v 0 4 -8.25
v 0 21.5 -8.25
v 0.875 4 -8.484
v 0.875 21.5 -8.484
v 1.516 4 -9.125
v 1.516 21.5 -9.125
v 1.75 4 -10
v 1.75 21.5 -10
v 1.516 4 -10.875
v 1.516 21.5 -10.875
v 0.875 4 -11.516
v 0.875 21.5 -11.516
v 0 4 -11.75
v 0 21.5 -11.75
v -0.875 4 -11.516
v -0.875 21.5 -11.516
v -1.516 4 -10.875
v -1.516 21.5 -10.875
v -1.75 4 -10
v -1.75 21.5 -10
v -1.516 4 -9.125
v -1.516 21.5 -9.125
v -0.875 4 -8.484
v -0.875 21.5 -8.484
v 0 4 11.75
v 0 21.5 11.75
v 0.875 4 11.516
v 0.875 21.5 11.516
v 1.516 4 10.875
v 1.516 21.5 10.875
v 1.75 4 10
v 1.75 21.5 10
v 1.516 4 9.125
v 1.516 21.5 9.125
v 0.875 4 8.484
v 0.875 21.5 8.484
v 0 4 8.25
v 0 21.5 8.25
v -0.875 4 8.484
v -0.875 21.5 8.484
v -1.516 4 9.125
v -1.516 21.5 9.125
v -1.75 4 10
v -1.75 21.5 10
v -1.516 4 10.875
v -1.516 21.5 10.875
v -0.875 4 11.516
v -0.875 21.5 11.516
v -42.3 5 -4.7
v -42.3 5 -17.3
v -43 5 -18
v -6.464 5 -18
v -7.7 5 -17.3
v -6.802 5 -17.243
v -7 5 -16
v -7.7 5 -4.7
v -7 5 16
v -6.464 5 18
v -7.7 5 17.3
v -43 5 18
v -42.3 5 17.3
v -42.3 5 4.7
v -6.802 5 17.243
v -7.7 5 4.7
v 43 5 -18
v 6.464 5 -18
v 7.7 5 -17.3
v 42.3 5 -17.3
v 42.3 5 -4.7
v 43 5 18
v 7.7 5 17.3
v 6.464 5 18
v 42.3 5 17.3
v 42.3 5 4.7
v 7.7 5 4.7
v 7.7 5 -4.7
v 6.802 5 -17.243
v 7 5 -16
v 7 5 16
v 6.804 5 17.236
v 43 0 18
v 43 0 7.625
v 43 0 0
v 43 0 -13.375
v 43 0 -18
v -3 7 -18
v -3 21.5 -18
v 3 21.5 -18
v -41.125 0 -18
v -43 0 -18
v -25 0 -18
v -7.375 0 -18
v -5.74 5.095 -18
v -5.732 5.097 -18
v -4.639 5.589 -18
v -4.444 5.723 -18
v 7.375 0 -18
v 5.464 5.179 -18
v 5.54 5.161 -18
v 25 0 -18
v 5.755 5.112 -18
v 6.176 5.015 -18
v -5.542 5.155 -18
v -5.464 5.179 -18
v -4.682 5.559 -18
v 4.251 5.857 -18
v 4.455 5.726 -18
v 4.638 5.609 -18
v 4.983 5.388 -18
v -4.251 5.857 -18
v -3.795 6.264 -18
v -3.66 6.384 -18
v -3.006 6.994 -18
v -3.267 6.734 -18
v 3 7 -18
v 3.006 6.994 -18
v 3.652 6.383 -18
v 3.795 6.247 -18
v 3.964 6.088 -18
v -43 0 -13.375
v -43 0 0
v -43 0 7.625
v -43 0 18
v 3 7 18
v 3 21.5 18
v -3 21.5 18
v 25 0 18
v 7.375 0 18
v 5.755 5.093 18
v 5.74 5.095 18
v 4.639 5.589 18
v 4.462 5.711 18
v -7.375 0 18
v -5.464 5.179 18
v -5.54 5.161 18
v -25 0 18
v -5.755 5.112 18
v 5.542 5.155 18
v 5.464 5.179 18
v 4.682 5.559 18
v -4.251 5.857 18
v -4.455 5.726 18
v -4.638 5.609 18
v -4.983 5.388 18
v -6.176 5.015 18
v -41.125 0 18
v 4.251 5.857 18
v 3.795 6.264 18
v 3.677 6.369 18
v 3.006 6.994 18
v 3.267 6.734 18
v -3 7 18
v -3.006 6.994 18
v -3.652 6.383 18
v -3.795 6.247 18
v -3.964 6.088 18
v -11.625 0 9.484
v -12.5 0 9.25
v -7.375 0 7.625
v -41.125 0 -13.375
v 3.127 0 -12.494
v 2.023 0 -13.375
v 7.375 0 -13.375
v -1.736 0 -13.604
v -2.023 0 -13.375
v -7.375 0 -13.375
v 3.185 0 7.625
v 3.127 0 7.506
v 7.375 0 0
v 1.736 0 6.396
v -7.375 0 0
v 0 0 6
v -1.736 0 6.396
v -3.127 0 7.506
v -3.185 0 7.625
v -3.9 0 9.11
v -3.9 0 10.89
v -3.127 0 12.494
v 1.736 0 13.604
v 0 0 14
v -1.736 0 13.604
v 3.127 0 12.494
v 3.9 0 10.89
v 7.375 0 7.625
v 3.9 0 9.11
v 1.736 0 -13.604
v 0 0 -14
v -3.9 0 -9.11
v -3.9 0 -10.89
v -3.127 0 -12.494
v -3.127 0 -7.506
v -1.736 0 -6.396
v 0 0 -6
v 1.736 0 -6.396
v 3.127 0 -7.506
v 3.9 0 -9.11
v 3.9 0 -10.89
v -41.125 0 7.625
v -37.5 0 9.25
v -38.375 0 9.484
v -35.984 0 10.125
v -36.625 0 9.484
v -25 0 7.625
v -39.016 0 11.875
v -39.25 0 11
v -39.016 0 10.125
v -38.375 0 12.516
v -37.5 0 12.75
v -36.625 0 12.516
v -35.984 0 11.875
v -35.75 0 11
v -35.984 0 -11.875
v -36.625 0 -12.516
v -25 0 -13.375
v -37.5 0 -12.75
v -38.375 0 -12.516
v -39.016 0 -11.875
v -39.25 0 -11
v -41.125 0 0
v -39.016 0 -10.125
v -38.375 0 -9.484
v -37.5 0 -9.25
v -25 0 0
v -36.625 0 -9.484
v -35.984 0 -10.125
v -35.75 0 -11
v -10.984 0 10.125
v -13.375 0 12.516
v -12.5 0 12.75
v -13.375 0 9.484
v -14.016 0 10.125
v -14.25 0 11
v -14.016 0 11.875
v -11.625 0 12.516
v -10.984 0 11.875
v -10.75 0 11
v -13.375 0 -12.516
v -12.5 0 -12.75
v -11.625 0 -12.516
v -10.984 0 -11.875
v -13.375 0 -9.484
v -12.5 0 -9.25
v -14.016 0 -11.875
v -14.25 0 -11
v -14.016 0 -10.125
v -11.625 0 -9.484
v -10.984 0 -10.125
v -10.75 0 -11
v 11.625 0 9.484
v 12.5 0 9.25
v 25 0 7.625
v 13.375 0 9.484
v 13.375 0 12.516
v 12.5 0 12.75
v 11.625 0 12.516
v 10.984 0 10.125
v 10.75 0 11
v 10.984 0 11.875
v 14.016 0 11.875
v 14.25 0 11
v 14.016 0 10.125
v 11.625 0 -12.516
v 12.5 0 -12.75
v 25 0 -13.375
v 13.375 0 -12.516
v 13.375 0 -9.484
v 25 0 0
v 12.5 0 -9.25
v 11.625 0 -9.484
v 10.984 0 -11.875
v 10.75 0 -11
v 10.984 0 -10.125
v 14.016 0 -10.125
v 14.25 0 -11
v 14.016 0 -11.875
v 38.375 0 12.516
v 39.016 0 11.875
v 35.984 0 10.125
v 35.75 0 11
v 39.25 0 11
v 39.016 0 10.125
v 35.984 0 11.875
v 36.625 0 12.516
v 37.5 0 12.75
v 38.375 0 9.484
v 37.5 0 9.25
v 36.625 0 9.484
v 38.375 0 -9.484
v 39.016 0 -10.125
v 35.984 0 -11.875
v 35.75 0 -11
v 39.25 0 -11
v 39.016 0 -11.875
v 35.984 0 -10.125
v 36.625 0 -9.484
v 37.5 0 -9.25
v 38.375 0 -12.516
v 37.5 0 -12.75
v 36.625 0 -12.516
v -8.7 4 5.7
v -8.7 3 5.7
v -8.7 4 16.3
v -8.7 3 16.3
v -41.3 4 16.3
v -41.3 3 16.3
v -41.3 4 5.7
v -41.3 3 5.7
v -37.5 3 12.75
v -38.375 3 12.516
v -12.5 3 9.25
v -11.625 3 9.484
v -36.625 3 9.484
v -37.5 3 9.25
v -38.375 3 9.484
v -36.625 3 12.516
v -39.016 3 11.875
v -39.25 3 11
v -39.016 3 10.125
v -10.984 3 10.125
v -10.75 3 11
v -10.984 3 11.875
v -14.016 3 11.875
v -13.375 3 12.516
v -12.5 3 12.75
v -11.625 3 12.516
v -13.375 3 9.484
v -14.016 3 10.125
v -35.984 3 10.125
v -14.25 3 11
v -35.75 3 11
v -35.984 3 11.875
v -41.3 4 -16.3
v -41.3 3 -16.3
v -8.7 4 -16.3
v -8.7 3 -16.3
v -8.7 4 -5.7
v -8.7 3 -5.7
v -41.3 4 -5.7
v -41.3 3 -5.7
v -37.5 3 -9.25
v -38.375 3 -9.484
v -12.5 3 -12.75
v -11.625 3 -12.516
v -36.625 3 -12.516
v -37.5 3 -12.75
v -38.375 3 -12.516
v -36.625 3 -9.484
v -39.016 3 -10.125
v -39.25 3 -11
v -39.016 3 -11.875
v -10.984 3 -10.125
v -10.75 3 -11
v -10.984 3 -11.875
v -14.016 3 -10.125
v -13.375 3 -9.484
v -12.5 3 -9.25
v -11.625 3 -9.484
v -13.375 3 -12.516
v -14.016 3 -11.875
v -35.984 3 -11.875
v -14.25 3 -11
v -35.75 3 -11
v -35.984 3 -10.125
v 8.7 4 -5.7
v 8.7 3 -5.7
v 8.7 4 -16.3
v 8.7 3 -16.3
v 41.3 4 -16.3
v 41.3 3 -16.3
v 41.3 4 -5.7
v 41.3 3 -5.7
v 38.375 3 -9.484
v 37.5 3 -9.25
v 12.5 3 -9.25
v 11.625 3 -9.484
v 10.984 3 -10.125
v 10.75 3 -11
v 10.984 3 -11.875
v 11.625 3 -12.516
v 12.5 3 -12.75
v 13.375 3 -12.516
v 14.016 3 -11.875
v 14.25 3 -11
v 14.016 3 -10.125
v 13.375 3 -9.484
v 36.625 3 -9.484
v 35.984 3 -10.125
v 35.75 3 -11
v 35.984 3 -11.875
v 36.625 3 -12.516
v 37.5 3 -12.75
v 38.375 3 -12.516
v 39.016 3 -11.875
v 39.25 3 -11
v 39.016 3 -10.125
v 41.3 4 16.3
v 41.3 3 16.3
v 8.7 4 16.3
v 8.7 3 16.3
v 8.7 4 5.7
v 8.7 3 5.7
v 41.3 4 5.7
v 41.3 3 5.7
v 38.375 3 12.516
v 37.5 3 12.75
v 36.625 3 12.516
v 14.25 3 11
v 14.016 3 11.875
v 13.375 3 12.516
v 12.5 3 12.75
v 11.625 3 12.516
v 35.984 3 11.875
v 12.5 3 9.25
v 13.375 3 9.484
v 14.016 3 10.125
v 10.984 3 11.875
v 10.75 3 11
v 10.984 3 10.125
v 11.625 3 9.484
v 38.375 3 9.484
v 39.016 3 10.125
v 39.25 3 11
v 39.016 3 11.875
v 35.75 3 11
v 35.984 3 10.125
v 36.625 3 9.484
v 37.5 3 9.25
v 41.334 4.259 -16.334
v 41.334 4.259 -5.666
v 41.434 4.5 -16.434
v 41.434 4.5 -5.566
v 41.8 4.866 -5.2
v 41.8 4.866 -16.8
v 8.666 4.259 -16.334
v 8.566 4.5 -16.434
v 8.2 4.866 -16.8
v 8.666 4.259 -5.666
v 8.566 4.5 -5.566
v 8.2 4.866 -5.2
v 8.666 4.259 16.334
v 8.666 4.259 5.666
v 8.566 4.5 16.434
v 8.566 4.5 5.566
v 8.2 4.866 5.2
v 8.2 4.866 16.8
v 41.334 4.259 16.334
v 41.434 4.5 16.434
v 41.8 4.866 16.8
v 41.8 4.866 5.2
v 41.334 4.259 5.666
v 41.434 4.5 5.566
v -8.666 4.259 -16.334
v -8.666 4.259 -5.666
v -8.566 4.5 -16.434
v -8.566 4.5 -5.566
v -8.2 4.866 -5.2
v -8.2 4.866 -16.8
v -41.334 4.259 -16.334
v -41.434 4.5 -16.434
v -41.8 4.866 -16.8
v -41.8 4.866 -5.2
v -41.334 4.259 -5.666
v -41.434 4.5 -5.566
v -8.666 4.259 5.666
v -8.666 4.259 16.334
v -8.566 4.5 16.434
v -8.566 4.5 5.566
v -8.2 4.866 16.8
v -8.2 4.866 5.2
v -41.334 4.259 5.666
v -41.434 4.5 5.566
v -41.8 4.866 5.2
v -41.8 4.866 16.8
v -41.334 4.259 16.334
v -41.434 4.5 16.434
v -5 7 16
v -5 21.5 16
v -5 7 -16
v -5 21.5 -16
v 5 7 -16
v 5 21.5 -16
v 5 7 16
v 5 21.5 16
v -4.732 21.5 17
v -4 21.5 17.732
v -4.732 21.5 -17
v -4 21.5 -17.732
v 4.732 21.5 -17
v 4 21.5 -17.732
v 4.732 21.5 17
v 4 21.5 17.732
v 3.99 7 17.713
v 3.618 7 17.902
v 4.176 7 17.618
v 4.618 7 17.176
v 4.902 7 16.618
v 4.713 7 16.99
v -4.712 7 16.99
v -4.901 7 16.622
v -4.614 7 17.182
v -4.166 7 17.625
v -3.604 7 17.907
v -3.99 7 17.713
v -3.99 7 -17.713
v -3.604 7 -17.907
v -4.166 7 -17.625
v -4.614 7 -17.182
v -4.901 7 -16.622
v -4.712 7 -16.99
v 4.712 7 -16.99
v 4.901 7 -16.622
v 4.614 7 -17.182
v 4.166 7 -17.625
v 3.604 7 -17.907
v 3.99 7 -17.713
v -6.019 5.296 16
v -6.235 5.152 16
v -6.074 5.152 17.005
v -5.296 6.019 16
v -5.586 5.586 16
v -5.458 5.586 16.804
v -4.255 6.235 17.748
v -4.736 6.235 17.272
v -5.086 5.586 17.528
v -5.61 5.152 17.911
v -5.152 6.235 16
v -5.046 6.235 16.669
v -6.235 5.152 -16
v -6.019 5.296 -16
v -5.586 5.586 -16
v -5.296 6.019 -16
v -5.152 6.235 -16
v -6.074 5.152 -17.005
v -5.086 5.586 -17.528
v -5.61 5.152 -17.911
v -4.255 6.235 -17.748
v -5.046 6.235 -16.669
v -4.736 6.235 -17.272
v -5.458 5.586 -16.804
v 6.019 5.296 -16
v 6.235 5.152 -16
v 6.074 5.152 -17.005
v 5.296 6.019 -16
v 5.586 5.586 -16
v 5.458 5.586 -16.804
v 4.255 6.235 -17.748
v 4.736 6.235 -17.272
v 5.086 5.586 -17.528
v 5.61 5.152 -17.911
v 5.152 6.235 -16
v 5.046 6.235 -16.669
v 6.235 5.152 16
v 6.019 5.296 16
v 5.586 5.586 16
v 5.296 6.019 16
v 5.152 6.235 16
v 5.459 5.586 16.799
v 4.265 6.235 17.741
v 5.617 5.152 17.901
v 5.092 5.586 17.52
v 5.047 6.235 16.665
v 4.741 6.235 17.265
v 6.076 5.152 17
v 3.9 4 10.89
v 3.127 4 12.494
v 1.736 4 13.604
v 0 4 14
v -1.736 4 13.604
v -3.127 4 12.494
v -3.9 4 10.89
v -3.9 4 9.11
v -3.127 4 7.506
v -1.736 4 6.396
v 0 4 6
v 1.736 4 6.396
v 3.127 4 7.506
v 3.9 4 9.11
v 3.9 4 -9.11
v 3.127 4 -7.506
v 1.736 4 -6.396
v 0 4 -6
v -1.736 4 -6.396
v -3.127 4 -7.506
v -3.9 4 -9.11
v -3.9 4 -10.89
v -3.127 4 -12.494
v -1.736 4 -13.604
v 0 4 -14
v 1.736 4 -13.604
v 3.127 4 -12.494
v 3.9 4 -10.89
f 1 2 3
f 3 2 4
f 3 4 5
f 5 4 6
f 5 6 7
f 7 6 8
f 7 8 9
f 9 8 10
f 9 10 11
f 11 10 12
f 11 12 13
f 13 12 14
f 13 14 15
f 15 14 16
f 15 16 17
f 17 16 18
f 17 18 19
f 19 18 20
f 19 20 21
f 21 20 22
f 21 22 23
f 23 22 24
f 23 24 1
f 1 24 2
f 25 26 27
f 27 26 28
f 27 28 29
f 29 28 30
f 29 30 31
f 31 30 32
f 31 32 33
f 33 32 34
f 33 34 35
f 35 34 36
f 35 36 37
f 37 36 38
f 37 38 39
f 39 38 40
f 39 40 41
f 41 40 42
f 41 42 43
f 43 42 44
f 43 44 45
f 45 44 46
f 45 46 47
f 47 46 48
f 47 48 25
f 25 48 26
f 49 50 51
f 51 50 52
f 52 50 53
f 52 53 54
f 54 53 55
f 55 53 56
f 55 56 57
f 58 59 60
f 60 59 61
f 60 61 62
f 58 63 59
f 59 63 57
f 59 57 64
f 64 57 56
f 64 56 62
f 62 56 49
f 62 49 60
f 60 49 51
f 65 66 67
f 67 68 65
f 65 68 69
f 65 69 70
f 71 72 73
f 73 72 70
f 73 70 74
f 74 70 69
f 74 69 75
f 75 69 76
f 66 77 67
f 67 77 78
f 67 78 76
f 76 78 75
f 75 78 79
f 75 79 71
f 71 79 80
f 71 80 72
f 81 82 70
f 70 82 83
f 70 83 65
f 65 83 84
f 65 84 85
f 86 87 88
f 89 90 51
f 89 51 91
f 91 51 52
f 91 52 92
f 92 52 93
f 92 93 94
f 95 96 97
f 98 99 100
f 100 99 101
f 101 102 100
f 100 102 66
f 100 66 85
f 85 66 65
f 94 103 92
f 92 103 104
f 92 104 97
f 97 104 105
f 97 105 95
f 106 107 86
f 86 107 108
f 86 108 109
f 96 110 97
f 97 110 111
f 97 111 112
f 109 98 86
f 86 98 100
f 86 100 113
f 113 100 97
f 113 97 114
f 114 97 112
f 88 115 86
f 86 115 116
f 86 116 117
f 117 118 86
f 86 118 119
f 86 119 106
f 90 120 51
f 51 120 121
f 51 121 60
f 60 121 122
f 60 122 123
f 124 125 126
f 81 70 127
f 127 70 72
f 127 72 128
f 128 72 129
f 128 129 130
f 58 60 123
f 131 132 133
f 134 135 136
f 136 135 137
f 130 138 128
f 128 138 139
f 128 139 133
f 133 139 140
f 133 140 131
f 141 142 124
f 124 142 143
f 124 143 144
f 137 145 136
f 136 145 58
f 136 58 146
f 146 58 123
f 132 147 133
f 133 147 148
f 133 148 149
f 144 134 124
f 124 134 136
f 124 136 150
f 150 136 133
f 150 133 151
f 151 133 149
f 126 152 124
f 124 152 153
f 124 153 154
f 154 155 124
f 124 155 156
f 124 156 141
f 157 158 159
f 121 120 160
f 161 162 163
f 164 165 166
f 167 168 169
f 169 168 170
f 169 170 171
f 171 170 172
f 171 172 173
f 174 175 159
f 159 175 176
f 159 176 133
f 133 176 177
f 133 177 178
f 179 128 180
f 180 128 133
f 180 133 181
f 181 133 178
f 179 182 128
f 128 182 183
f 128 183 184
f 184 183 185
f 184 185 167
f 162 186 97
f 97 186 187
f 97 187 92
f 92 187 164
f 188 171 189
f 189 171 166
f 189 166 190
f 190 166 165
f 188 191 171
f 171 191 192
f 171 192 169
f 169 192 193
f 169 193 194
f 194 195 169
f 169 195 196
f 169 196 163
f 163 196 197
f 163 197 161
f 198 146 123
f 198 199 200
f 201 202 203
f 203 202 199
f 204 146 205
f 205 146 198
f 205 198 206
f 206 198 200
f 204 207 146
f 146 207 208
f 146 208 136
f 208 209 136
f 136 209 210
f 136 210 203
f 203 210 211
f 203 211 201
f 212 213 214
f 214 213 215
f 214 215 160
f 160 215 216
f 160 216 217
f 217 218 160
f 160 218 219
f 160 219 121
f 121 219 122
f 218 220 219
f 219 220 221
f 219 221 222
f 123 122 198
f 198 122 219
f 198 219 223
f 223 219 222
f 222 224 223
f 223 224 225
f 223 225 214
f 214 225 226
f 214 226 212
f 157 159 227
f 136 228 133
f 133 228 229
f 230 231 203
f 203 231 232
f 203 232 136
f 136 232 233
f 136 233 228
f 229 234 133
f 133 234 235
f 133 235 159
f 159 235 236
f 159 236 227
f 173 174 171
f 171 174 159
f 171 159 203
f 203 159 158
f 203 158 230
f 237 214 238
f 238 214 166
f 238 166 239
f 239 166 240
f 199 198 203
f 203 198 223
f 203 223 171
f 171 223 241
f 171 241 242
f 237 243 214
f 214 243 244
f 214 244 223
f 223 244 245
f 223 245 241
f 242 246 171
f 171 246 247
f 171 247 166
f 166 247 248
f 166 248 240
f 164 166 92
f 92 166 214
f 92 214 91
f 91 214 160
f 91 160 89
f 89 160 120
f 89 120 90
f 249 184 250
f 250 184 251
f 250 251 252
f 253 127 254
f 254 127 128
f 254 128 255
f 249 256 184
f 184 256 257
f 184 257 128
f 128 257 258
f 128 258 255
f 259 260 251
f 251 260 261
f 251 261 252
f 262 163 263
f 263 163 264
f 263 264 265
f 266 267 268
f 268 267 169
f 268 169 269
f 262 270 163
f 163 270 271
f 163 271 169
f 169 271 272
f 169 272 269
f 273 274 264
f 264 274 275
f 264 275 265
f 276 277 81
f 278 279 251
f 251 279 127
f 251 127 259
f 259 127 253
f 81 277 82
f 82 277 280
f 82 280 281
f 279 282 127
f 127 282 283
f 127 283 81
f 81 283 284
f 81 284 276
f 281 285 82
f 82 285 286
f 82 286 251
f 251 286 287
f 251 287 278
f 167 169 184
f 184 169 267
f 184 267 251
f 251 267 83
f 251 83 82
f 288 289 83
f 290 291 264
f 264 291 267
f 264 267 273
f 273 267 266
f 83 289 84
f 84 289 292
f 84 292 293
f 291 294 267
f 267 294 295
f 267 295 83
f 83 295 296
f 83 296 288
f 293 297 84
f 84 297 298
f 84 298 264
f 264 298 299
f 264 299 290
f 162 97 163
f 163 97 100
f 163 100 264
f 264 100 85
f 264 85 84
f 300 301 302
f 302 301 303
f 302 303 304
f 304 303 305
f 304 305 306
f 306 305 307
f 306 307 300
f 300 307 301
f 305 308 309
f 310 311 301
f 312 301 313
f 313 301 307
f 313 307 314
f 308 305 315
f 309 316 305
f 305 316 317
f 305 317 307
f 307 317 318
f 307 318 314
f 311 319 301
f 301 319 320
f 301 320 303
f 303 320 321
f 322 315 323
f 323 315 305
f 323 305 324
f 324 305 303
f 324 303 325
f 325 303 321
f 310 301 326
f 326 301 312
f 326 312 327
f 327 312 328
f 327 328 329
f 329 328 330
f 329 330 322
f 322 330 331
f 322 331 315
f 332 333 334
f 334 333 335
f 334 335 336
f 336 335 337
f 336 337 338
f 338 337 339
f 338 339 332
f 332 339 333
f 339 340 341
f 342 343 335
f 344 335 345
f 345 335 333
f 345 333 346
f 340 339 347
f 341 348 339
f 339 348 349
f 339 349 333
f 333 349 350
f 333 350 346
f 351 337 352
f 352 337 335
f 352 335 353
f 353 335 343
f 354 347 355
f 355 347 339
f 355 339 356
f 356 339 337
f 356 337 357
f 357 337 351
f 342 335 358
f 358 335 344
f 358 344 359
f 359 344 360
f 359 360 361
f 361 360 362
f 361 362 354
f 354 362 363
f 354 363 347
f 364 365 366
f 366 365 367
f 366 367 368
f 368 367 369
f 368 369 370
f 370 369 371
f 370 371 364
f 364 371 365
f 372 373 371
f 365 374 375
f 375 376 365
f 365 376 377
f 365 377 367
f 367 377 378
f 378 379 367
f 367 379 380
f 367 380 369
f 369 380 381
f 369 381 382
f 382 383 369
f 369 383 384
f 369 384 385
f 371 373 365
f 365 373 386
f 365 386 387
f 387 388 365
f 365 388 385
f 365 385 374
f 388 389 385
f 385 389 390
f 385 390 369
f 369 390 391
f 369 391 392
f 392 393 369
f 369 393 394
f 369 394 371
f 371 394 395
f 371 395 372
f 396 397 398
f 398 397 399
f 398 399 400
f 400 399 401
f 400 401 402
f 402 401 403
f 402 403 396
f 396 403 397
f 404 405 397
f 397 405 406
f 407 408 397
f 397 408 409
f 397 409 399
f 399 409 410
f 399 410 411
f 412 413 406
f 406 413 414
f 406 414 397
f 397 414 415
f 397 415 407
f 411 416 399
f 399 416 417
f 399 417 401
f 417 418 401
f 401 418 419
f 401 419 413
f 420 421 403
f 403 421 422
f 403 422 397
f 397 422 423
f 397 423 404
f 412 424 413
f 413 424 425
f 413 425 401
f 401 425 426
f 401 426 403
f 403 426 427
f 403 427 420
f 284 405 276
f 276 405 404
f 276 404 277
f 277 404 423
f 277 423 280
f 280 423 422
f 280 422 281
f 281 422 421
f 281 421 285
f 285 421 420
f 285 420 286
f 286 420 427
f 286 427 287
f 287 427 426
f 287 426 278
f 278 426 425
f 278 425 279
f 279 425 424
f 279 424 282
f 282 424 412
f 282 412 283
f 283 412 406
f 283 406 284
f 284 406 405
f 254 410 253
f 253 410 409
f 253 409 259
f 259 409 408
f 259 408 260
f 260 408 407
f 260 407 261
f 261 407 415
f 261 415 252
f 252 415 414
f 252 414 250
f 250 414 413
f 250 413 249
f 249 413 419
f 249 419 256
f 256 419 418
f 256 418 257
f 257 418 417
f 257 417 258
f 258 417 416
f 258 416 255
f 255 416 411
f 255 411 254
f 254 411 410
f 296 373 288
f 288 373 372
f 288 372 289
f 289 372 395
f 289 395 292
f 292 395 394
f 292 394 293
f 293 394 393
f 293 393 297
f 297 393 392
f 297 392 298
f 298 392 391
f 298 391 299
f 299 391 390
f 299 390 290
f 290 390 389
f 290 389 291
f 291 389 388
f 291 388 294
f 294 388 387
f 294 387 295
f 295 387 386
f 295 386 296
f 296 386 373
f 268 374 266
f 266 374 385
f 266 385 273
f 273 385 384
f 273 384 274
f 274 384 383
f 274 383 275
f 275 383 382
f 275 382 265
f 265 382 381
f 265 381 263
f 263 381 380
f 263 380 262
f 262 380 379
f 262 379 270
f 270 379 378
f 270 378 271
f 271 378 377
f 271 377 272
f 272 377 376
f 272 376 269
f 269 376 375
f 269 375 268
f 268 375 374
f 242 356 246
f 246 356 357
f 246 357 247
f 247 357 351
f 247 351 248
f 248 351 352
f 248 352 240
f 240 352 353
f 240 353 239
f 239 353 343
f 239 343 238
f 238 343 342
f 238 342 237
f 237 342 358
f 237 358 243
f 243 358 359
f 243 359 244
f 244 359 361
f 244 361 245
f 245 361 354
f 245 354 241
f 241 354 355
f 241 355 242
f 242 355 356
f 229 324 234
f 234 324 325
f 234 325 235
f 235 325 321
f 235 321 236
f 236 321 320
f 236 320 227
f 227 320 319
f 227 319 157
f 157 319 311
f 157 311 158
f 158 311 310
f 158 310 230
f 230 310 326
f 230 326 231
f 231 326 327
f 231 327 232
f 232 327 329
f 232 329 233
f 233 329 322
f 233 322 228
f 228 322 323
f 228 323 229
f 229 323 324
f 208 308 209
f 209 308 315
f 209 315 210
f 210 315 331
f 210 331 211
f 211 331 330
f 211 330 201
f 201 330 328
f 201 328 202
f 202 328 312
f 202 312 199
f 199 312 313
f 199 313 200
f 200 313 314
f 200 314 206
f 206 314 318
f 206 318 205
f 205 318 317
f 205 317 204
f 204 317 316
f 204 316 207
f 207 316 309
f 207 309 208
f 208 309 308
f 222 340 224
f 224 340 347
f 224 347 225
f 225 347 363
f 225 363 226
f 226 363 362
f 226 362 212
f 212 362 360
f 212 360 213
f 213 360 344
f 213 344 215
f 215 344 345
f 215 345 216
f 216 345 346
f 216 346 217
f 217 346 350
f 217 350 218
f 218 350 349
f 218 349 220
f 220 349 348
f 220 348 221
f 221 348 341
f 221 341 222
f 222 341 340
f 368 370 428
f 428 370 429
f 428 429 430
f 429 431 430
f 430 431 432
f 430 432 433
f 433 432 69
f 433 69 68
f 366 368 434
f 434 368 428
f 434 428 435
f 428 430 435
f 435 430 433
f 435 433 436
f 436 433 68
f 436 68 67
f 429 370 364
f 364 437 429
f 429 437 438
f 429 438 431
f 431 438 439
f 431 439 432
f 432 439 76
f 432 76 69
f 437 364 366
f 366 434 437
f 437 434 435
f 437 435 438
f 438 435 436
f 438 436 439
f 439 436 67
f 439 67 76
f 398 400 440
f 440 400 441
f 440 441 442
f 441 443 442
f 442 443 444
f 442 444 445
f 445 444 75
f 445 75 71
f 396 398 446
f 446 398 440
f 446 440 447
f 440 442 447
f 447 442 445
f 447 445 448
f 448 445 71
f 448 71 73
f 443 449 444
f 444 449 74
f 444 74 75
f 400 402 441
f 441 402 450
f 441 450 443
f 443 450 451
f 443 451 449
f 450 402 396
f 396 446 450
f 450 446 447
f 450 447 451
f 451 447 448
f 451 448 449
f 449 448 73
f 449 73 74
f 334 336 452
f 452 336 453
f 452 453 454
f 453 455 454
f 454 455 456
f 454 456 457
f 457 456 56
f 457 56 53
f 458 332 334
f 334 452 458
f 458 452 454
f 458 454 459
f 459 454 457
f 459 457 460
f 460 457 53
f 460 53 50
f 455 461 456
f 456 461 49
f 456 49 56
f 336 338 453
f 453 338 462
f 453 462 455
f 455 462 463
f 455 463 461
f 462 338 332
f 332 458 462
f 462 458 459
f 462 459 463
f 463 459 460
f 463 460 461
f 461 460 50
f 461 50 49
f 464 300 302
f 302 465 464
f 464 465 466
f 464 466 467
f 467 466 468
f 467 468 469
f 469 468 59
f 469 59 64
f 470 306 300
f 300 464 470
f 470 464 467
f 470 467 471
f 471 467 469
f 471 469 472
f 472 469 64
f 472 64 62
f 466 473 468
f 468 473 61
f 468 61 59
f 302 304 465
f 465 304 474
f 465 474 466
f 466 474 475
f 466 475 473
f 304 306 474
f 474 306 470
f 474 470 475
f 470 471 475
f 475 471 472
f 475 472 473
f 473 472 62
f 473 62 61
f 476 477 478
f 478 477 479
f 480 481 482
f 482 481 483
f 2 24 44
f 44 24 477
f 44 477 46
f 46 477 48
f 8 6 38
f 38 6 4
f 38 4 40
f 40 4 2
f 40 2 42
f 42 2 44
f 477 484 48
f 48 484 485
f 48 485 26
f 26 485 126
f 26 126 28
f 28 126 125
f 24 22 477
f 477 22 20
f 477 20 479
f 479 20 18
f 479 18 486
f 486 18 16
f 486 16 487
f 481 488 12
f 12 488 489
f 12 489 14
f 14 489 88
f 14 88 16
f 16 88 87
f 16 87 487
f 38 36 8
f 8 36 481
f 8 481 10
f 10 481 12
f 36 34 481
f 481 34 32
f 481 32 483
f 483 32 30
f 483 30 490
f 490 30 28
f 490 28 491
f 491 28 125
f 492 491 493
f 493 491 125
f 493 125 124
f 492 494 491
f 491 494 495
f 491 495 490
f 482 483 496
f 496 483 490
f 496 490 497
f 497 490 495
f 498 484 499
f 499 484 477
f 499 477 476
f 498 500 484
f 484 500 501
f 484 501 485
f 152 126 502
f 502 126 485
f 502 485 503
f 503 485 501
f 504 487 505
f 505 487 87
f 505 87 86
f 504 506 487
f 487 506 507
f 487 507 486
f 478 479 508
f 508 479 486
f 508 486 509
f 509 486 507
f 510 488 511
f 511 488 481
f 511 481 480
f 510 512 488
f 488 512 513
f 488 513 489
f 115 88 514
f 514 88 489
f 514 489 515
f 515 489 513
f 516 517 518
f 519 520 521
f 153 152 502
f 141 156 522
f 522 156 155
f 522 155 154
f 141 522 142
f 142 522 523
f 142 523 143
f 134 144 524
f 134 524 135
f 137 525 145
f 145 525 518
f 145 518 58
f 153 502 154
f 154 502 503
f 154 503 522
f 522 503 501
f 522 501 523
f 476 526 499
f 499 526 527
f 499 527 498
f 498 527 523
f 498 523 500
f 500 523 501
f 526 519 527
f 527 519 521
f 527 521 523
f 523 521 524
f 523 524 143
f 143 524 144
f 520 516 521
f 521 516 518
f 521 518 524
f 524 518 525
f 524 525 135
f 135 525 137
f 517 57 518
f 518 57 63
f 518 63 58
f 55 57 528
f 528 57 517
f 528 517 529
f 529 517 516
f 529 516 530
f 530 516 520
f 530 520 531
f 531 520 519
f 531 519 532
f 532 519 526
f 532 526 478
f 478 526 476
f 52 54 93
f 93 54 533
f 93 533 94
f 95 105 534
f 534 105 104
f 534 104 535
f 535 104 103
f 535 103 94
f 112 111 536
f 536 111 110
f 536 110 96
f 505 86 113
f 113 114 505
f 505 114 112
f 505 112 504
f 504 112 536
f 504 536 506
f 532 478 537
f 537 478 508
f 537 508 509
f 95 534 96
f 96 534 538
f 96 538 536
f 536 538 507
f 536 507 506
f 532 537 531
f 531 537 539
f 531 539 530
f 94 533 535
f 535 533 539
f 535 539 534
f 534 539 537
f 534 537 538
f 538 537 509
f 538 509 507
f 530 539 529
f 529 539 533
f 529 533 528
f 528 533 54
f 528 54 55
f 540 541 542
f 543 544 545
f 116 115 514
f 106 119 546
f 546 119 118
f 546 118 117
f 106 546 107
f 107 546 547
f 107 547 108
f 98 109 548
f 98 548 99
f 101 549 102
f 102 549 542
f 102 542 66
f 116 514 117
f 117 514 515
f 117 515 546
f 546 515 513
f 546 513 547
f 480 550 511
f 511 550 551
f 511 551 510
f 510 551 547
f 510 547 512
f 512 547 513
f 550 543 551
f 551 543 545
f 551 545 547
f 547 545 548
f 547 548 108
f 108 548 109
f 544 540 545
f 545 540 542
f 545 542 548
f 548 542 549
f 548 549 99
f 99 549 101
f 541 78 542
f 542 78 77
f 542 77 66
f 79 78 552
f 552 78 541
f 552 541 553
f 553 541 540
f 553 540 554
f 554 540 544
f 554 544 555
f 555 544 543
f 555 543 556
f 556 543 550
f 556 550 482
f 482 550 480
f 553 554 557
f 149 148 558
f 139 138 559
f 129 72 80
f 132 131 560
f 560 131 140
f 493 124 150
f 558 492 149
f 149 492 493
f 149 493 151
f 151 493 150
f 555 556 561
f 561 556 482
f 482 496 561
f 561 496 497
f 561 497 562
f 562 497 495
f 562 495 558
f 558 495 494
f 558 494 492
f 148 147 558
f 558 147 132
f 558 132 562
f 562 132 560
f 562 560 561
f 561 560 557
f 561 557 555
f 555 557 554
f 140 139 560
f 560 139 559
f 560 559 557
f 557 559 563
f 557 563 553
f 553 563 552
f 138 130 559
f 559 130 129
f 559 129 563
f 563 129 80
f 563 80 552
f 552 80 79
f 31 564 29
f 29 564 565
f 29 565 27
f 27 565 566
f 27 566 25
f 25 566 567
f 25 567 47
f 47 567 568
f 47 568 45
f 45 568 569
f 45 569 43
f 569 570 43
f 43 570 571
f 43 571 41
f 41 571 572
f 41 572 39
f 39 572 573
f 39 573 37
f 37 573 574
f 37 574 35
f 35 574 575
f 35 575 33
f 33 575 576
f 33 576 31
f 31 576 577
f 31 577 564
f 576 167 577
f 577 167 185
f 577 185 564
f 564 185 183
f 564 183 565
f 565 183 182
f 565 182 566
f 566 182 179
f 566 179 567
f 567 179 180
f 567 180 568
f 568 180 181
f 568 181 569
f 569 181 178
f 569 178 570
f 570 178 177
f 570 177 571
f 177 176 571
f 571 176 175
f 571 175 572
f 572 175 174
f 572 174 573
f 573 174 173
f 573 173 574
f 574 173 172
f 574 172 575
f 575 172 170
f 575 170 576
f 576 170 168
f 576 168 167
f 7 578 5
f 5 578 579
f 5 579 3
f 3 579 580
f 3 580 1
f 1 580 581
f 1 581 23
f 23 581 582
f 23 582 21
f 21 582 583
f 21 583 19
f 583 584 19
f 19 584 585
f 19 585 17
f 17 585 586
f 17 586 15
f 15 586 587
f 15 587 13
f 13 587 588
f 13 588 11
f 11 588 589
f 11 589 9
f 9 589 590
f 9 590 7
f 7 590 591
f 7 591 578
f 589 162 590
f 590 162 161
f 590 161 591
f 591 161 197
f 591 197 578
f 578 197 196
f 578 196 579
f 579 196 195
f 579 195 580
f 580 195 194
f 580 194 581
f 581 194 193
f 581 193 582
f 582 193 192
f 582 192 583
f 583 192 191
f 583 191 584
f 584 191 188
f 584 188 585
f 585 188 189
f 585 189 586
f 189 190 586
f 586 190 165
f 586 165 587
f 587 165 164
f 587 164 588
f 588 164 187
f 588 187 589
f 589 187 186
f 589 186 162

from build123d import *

# Parameters (mm, degrees)
SKETCH_1_W          = 86
SKETCH_1_H          = 36
EXTRUDE_1_DEPTH     = 5
SKETCH_5_W          = 32.6
SKETCH_5_H          = 10.6
SKETCH_5_R          = 1.75
CUT_EXTRUDE_2_DEPTH = 2
SKETCH_5_3_R        = 1.75
CUT_EXTRUDE_3_DEPTH = 47.882832679
FILLET_2_R          = 1
SKETCH_8_W          = 10
SKETCH_8_H          = 36
EXTRUDE_2_DEPTH     = 16.5
SKETCH_9_R          = 1.75
CUT_EXTRUDE_4_DEPTH = 52.334686129
FILLET_3_R          = 2
FILLET_4_R          = 2
SKETCH_10_R         = 4
CUT_EXTRUDE_5_DEPTH = 4


with BuildPart() as part:
    # ｽｹｯﾁ1 → ﾎﾞｽ - 押し出し1 (new body)
    with BuildSketch(Plane(origin=(0, 0, 0), x_dir=(1, 0, 0), z_dir=(0, 1, 0))):
        Rectangle(SKETCH_1_W, SKETCH_1_H)
    extrude(amount=EXTRUDE_1_DEPTH)

    # ｽｹｯﾁ5 → ｶｯﾄ - 押し出し2 (cut)
    # profile 1 of 4: a face of its own
    with BuildSketch(Plane(origin=(0, 5, 0), x_dir=(1, 0, 0), z_dir=(0, 1, 0))):
        with Locations((-25, -11)):
            Rectangle(SKETCH_5_W, SKETCH_5_H)
        with Locations(Location((-37.5, -11, 0), (0, 0, 270))):
            Circle(SKETCH_5_R, mode=Mode.SUBTRACT)
        with Locations(Location((-12.5, -11, 0), (0, 0, 90))):
            Circle(SKETCH_5_R, mode=Mode.SUBTRACT)
    # profile 2 of 4: a face of its own
    with BuildSketch(Plane(origin=(0, 5, 0), x_dir=(1, 0, 0), z_dir=(0, 1, 0))):
        with Locations((-25, 11)):
            Rectangle(SKETCH_5_W, SKETCH_5_H)
        with Locations(Location((-12.5, 11, 0), (0, 0, 270))):
            Circle(SKETCH_5_R, mode=Mode.SUBTRACT)
        with Locations(Location((-37.5, 11, 0), (0, 0, 90))):
            Circle(SKETCH_5_R, mode=Mode.SUBTRACT)
    # profile 3 of 4: a face of its own
    with BuildSketch(Plane(origin=(0, 5, 0), x_dir=(1, 0, 0), z_dir=(0, 1, 0))):
        with Locations((25, 11)):
            Rectangle(SKETCH_5_W, SKETCH_5_H)
        with Locations(Location((37.5, 11, 0), (0, 0, 270))):
            Circle(SKETCH_5_R, mode=Mode.SUBTRACT)
        with Locations(Location((12.5, 11, 0), (0, 0, 90))):
            Circle(SKETCH_5_R, mode=Mode.SUBTRACT)
    # profile 4 of 4: a face of its own
    with BuildSketch(Plane(origin=(0, 5, 0), x_dir=(1, 0, 0), z_dir=(0, 1, 0))):
        with Locations((25, -11)):
            Rectangle(SKETCH_5_W, SKETCH_5_H)
        with Locations(Location((12.5, -11, 0), (0, 0, 270))):
            Circle(SKETCH_5_R, mode=Mode.SUBTRACT)
        with Locations(Location((37.5, -11, 0), (0, 0, 90))):
            Circle(SKETCH_5_R, mode=Mode.SUBTRACT)
    extrude(amount=-CUT_EXTRUDE_2_DEPTH, mode=Mode.SUBTRACT)

    # ｽｹｯﾁ5<3> → ｶｯﾄ - 押し出し3 (cut, through all)
    with BuildSketch(Plane(origin=(0, 5, 0), x_dir=(1, 0, 0), z_dir=(0, 1, 0))):
        with Locations(Location((37.5, -11, 0), (0, 0, 270))):
            Circle(SKETCH_5_3_R)
        with Locations(Location((12.5, -11, 0), (0, 0, 270))):
            Circle(SKETCH_5_3_R)
        with Locations(Location((37.5, 11, 0), (0, 0, 270))):
            Circle(SKETCH_5_3_R)
        with Locations(Location((12.5, 11, 0), (0, 0, 270))):
            Circle(SKETCH_5_3_R)
        with Locations(Location((-12.5, 11, 0), (0, 0, 270))):
            Circle(SKETCH_5_3_R)
        with Locations(Location((-12.5, -11, 0), (0, 0, 270))):
            Circle(SKETCH_5_3_R)
        with Locations(Location((-37.5, -11, 0), (0, 0, 270))):
            Circle(SKETCH_5_3_R)
        with Locations(Location((-37.5, 11, 0), (0, 0, 270))):
            Circle(SKETCH_5_3_R)
    extrude(amount=-CUT_EXTRUDE_3_DEPTH, mode=Mode.SUBTRACT)

    # ﾌｨﾚｯﾄ2
    fillet_2_edges = [part.edges().sort_by_distance(p)[0] for p in [
        (-8.7, 5, 11),
        (-25, 5, 5.7),
        (-41.3, 5, 11),
        (-25, 5, 16.3),
        (-25, 5, -16.3),
        (-41.3, 5, -11),
        (-25, 5, -5.7),
        (-8.7, 5, -11),
        (8.7, 5, -11),
        (25, 5, -5.7),
        (41.3, 5, -11),
        (25, 5, -16.3),
        (25, 5, 16.3),
        (41.3, 5, 11),
        (25, 5, 5.7),
        (8.7, 5, 11),
    ]]
    fillet(fillet_2_edges, radius=FILLET_2_R)

    # ｽｹｯﾁ8 → ﾎﾞｽ - 押し出し2 (add)
    with BuildSketch(Plane(origin=(0, 5, 0), x_dir=(1, 0, 0), z_dir=(0, 1, 0))):
        Rectangle(SKETCH_8_W, SKETCH_8_H)
    extrude(amount=EXTRUDE_2_DEPTH)

    # ｽｹｯﾁ9 → ｶｯﾄ - 押し出し4 (cut, through all)
    with BuildSketch(Plane(origin=(0, 21.5, 0), x_dir=(1, 0, 0), z_dir=(0, 1, 0))):
        with Locations(Location((0, -10, 0), (0, 0, 270))):
            Circle(SKETCH_9_R)
        with Locations(Location((0, 10, 0), (0, 0, 270))):
            Circle(SKETCH_9_R)
    extrude(amount=-CUT_EXTRUDE_4_DEPTH, mode=Mode.SUBTRACT)

    # ﾌｨﾚｯﾄ3
    fillet_3_edges = [part.edges().sort_by_distance(p)[0] for p in [
        (-5, 13.25, -18),
        (-5, 13.25, 18),
        (5, 13.25, 18),
        (5, 13.25, -18),
    ]]
    fillet(fillet_3_edges, radius=FILLET_3_R)

    # ﾌｨﾚｯﾄ4
    # the kernel refuses this fillet: 2 mm, written as the material it adds along each edge
    with BuildSketch(Plane(origin=(5, 5, 16), x_dir=(1, 0, 0), z_dir=(0, 0, -1)), Plane(origin=(-5, 5, -16), x_dir=(-1, 0, 0), z_dir=(0, 0, 1))) as fillet_4_piece_1:
        with BuildLine():
            CenterArc((FILLET_4_R, -FILLET_4_R), FILLET_4_R, 90, 90)
            Line((0, -FILLET_4_R), (0, 0))
            Line((0, 0), (FILLET_4_R, 0))
        make_face()
    extrude(amount=32)
    with BuildSketch(Plane(origin=(3, 5, 16), x_dir=(-0.5976672776328272, 0, -0.8017442392976484), z_dir=(0.8017442392976484, 0, -0.5976672776328272))) as fillet_4_piece_2_section:
        with BuildLine():
            CenterArc((2 + FILLET_4_R, FILLET_4_R), FILLET_4_R, 180, 90)
            Line((2 + FILLET_4_R, 0), (2, 0))
            Line((2, 0), (2, FILLET_4_R))
        make_face()
    fillet_4_piece_2 = revolve(axis=Axis((3, 5, 16), (0, 1, 0)), revolution_arc=233.296989237, mode=Mode.PRIVATE)
    fillet_4_piece_2 = split(fillet_4_piece_2, bisect_by=Plane(origin=(4.499877774, 5.623256904, 18), z_dir=(0, 0, -1)), keep=Keep.TOP, mode=Mode.PRIVATE)
    add(fillet_4_piece_2)
    with BuildSketch(Plane(origin=(-3, 5, 16), x_dir=(0.5976672776328272, 0, -0.8017442392976484), z_dir=(-0.8017442392976484, 0, -0.5976672776328272))) as fillet_4_piece_3_section:
        with BuildLine():
            CenterArc((2 + FILLET_4_R, -FILLET_4_R), FILLET_4_R, 90, 90)
            Line((2, -FILLET_4_R), (2, 0))
            Line((2, 0), (2 + FILLET_4_R, 0))
        make_face()
    fillet_4_piece_3 = revolve(axis=Axis((-3, 5, 16), (0, -1, 0)), revolution_arc=233.296989237, mode=Mode.PRIVATE)
    fillet_4_piece_3 = split(fillet_4_piece_3, bisect_by=Plane(origin=(-4.499877889, 5.623256622, 18), z_dir=(0, 0, -1)), keep=Keep.TOP, mode=Mode.PRIVATE)
    add(fillet_4_piece_3)
    with BuildSketch(Plane(origin=(-3, 5, -16), x_dir=(-1, 0, 0), z_dir=(0, 0, 1))) as fillet_4_piece_4_section:
        with BuildLine():
            CenterArc((2 + FILLET_4_R, -FILLET_4_R), FILLET_4_R, 90, 90)
            Line((2, -FILLET_4_R), (2, 0))
            Line((2, 0), (2 + FILLET_4_R, 0))
        make_face()
    fillet_4_piece_4 = revolve(axis=Axis((-3, 5, -16), (0, -1, 0)), revolution_arc=233.296989237, mode=Mode.PRIVATE)
    fillet_4_piece_4 = split(fillet_4_piece_4, bisect_by=Plane(origin=(-5.439550498, 5.334600403, -18), z_dir=(0, 0, 1)), keep=Keep.TOP, mode=Mode.PRIVATE)
    add(fillet_4_piece_4)
    with BuildSketch(Plane(origin=(3, 5, -16), x_dir=(-0.5976672776328279, 0, 0.8017442392976479), z_dir=(0.8017442392976479, 0, 0.5976672776328279))) as fillet_4_piece_5_section:
        with BuildLine():
            CenterArc((2 + FILLET_4_R, -FILLET_4_R), FILLET_4_R, 90, 90)
            Line((2, -FILLET_4_R), (2, 0))
            Line((2, 0), (2 + FILLET_4_R, 0))
        make_face()
    fillet_4_piece_5 = revolve(axis=Axis((3, 5, -16), (0, -1, 0)), revolution_arc=233.296989237, mode=Mode.PRIVATE)
    fillet_4_piece_5 = split(fillet_4_piece_5, bisect_by=Plane(origin=(4.499877909, 5.62325654, -18), z_dir=(0, 0, 1)), keep=Keep.TOP, mode=Mode.PRIVATE)
    add(fillet_4_piece_5)

    # ｽｹｯﾁ10 → ｶｯﾄ - 押し出し5 (cut)
    with BuildSketch(Plane(origin=(0, 0, 0), x_dir=(-1, 0, 0), z_dir=(0, -1, 0))):
        with Locations(Location((0, -10, 0), (0, 0, 90))):
            Circle(SKETCH_10_R)
        with Locations(Location((0, 10, 0), (0, 0, 90))):
            Circle(SKETCH_10_R)
    extrude(amount=-CUT_EXTRUDE_5_DEPTH, mode=Mode.SUBTRACT)


solid = part.part
